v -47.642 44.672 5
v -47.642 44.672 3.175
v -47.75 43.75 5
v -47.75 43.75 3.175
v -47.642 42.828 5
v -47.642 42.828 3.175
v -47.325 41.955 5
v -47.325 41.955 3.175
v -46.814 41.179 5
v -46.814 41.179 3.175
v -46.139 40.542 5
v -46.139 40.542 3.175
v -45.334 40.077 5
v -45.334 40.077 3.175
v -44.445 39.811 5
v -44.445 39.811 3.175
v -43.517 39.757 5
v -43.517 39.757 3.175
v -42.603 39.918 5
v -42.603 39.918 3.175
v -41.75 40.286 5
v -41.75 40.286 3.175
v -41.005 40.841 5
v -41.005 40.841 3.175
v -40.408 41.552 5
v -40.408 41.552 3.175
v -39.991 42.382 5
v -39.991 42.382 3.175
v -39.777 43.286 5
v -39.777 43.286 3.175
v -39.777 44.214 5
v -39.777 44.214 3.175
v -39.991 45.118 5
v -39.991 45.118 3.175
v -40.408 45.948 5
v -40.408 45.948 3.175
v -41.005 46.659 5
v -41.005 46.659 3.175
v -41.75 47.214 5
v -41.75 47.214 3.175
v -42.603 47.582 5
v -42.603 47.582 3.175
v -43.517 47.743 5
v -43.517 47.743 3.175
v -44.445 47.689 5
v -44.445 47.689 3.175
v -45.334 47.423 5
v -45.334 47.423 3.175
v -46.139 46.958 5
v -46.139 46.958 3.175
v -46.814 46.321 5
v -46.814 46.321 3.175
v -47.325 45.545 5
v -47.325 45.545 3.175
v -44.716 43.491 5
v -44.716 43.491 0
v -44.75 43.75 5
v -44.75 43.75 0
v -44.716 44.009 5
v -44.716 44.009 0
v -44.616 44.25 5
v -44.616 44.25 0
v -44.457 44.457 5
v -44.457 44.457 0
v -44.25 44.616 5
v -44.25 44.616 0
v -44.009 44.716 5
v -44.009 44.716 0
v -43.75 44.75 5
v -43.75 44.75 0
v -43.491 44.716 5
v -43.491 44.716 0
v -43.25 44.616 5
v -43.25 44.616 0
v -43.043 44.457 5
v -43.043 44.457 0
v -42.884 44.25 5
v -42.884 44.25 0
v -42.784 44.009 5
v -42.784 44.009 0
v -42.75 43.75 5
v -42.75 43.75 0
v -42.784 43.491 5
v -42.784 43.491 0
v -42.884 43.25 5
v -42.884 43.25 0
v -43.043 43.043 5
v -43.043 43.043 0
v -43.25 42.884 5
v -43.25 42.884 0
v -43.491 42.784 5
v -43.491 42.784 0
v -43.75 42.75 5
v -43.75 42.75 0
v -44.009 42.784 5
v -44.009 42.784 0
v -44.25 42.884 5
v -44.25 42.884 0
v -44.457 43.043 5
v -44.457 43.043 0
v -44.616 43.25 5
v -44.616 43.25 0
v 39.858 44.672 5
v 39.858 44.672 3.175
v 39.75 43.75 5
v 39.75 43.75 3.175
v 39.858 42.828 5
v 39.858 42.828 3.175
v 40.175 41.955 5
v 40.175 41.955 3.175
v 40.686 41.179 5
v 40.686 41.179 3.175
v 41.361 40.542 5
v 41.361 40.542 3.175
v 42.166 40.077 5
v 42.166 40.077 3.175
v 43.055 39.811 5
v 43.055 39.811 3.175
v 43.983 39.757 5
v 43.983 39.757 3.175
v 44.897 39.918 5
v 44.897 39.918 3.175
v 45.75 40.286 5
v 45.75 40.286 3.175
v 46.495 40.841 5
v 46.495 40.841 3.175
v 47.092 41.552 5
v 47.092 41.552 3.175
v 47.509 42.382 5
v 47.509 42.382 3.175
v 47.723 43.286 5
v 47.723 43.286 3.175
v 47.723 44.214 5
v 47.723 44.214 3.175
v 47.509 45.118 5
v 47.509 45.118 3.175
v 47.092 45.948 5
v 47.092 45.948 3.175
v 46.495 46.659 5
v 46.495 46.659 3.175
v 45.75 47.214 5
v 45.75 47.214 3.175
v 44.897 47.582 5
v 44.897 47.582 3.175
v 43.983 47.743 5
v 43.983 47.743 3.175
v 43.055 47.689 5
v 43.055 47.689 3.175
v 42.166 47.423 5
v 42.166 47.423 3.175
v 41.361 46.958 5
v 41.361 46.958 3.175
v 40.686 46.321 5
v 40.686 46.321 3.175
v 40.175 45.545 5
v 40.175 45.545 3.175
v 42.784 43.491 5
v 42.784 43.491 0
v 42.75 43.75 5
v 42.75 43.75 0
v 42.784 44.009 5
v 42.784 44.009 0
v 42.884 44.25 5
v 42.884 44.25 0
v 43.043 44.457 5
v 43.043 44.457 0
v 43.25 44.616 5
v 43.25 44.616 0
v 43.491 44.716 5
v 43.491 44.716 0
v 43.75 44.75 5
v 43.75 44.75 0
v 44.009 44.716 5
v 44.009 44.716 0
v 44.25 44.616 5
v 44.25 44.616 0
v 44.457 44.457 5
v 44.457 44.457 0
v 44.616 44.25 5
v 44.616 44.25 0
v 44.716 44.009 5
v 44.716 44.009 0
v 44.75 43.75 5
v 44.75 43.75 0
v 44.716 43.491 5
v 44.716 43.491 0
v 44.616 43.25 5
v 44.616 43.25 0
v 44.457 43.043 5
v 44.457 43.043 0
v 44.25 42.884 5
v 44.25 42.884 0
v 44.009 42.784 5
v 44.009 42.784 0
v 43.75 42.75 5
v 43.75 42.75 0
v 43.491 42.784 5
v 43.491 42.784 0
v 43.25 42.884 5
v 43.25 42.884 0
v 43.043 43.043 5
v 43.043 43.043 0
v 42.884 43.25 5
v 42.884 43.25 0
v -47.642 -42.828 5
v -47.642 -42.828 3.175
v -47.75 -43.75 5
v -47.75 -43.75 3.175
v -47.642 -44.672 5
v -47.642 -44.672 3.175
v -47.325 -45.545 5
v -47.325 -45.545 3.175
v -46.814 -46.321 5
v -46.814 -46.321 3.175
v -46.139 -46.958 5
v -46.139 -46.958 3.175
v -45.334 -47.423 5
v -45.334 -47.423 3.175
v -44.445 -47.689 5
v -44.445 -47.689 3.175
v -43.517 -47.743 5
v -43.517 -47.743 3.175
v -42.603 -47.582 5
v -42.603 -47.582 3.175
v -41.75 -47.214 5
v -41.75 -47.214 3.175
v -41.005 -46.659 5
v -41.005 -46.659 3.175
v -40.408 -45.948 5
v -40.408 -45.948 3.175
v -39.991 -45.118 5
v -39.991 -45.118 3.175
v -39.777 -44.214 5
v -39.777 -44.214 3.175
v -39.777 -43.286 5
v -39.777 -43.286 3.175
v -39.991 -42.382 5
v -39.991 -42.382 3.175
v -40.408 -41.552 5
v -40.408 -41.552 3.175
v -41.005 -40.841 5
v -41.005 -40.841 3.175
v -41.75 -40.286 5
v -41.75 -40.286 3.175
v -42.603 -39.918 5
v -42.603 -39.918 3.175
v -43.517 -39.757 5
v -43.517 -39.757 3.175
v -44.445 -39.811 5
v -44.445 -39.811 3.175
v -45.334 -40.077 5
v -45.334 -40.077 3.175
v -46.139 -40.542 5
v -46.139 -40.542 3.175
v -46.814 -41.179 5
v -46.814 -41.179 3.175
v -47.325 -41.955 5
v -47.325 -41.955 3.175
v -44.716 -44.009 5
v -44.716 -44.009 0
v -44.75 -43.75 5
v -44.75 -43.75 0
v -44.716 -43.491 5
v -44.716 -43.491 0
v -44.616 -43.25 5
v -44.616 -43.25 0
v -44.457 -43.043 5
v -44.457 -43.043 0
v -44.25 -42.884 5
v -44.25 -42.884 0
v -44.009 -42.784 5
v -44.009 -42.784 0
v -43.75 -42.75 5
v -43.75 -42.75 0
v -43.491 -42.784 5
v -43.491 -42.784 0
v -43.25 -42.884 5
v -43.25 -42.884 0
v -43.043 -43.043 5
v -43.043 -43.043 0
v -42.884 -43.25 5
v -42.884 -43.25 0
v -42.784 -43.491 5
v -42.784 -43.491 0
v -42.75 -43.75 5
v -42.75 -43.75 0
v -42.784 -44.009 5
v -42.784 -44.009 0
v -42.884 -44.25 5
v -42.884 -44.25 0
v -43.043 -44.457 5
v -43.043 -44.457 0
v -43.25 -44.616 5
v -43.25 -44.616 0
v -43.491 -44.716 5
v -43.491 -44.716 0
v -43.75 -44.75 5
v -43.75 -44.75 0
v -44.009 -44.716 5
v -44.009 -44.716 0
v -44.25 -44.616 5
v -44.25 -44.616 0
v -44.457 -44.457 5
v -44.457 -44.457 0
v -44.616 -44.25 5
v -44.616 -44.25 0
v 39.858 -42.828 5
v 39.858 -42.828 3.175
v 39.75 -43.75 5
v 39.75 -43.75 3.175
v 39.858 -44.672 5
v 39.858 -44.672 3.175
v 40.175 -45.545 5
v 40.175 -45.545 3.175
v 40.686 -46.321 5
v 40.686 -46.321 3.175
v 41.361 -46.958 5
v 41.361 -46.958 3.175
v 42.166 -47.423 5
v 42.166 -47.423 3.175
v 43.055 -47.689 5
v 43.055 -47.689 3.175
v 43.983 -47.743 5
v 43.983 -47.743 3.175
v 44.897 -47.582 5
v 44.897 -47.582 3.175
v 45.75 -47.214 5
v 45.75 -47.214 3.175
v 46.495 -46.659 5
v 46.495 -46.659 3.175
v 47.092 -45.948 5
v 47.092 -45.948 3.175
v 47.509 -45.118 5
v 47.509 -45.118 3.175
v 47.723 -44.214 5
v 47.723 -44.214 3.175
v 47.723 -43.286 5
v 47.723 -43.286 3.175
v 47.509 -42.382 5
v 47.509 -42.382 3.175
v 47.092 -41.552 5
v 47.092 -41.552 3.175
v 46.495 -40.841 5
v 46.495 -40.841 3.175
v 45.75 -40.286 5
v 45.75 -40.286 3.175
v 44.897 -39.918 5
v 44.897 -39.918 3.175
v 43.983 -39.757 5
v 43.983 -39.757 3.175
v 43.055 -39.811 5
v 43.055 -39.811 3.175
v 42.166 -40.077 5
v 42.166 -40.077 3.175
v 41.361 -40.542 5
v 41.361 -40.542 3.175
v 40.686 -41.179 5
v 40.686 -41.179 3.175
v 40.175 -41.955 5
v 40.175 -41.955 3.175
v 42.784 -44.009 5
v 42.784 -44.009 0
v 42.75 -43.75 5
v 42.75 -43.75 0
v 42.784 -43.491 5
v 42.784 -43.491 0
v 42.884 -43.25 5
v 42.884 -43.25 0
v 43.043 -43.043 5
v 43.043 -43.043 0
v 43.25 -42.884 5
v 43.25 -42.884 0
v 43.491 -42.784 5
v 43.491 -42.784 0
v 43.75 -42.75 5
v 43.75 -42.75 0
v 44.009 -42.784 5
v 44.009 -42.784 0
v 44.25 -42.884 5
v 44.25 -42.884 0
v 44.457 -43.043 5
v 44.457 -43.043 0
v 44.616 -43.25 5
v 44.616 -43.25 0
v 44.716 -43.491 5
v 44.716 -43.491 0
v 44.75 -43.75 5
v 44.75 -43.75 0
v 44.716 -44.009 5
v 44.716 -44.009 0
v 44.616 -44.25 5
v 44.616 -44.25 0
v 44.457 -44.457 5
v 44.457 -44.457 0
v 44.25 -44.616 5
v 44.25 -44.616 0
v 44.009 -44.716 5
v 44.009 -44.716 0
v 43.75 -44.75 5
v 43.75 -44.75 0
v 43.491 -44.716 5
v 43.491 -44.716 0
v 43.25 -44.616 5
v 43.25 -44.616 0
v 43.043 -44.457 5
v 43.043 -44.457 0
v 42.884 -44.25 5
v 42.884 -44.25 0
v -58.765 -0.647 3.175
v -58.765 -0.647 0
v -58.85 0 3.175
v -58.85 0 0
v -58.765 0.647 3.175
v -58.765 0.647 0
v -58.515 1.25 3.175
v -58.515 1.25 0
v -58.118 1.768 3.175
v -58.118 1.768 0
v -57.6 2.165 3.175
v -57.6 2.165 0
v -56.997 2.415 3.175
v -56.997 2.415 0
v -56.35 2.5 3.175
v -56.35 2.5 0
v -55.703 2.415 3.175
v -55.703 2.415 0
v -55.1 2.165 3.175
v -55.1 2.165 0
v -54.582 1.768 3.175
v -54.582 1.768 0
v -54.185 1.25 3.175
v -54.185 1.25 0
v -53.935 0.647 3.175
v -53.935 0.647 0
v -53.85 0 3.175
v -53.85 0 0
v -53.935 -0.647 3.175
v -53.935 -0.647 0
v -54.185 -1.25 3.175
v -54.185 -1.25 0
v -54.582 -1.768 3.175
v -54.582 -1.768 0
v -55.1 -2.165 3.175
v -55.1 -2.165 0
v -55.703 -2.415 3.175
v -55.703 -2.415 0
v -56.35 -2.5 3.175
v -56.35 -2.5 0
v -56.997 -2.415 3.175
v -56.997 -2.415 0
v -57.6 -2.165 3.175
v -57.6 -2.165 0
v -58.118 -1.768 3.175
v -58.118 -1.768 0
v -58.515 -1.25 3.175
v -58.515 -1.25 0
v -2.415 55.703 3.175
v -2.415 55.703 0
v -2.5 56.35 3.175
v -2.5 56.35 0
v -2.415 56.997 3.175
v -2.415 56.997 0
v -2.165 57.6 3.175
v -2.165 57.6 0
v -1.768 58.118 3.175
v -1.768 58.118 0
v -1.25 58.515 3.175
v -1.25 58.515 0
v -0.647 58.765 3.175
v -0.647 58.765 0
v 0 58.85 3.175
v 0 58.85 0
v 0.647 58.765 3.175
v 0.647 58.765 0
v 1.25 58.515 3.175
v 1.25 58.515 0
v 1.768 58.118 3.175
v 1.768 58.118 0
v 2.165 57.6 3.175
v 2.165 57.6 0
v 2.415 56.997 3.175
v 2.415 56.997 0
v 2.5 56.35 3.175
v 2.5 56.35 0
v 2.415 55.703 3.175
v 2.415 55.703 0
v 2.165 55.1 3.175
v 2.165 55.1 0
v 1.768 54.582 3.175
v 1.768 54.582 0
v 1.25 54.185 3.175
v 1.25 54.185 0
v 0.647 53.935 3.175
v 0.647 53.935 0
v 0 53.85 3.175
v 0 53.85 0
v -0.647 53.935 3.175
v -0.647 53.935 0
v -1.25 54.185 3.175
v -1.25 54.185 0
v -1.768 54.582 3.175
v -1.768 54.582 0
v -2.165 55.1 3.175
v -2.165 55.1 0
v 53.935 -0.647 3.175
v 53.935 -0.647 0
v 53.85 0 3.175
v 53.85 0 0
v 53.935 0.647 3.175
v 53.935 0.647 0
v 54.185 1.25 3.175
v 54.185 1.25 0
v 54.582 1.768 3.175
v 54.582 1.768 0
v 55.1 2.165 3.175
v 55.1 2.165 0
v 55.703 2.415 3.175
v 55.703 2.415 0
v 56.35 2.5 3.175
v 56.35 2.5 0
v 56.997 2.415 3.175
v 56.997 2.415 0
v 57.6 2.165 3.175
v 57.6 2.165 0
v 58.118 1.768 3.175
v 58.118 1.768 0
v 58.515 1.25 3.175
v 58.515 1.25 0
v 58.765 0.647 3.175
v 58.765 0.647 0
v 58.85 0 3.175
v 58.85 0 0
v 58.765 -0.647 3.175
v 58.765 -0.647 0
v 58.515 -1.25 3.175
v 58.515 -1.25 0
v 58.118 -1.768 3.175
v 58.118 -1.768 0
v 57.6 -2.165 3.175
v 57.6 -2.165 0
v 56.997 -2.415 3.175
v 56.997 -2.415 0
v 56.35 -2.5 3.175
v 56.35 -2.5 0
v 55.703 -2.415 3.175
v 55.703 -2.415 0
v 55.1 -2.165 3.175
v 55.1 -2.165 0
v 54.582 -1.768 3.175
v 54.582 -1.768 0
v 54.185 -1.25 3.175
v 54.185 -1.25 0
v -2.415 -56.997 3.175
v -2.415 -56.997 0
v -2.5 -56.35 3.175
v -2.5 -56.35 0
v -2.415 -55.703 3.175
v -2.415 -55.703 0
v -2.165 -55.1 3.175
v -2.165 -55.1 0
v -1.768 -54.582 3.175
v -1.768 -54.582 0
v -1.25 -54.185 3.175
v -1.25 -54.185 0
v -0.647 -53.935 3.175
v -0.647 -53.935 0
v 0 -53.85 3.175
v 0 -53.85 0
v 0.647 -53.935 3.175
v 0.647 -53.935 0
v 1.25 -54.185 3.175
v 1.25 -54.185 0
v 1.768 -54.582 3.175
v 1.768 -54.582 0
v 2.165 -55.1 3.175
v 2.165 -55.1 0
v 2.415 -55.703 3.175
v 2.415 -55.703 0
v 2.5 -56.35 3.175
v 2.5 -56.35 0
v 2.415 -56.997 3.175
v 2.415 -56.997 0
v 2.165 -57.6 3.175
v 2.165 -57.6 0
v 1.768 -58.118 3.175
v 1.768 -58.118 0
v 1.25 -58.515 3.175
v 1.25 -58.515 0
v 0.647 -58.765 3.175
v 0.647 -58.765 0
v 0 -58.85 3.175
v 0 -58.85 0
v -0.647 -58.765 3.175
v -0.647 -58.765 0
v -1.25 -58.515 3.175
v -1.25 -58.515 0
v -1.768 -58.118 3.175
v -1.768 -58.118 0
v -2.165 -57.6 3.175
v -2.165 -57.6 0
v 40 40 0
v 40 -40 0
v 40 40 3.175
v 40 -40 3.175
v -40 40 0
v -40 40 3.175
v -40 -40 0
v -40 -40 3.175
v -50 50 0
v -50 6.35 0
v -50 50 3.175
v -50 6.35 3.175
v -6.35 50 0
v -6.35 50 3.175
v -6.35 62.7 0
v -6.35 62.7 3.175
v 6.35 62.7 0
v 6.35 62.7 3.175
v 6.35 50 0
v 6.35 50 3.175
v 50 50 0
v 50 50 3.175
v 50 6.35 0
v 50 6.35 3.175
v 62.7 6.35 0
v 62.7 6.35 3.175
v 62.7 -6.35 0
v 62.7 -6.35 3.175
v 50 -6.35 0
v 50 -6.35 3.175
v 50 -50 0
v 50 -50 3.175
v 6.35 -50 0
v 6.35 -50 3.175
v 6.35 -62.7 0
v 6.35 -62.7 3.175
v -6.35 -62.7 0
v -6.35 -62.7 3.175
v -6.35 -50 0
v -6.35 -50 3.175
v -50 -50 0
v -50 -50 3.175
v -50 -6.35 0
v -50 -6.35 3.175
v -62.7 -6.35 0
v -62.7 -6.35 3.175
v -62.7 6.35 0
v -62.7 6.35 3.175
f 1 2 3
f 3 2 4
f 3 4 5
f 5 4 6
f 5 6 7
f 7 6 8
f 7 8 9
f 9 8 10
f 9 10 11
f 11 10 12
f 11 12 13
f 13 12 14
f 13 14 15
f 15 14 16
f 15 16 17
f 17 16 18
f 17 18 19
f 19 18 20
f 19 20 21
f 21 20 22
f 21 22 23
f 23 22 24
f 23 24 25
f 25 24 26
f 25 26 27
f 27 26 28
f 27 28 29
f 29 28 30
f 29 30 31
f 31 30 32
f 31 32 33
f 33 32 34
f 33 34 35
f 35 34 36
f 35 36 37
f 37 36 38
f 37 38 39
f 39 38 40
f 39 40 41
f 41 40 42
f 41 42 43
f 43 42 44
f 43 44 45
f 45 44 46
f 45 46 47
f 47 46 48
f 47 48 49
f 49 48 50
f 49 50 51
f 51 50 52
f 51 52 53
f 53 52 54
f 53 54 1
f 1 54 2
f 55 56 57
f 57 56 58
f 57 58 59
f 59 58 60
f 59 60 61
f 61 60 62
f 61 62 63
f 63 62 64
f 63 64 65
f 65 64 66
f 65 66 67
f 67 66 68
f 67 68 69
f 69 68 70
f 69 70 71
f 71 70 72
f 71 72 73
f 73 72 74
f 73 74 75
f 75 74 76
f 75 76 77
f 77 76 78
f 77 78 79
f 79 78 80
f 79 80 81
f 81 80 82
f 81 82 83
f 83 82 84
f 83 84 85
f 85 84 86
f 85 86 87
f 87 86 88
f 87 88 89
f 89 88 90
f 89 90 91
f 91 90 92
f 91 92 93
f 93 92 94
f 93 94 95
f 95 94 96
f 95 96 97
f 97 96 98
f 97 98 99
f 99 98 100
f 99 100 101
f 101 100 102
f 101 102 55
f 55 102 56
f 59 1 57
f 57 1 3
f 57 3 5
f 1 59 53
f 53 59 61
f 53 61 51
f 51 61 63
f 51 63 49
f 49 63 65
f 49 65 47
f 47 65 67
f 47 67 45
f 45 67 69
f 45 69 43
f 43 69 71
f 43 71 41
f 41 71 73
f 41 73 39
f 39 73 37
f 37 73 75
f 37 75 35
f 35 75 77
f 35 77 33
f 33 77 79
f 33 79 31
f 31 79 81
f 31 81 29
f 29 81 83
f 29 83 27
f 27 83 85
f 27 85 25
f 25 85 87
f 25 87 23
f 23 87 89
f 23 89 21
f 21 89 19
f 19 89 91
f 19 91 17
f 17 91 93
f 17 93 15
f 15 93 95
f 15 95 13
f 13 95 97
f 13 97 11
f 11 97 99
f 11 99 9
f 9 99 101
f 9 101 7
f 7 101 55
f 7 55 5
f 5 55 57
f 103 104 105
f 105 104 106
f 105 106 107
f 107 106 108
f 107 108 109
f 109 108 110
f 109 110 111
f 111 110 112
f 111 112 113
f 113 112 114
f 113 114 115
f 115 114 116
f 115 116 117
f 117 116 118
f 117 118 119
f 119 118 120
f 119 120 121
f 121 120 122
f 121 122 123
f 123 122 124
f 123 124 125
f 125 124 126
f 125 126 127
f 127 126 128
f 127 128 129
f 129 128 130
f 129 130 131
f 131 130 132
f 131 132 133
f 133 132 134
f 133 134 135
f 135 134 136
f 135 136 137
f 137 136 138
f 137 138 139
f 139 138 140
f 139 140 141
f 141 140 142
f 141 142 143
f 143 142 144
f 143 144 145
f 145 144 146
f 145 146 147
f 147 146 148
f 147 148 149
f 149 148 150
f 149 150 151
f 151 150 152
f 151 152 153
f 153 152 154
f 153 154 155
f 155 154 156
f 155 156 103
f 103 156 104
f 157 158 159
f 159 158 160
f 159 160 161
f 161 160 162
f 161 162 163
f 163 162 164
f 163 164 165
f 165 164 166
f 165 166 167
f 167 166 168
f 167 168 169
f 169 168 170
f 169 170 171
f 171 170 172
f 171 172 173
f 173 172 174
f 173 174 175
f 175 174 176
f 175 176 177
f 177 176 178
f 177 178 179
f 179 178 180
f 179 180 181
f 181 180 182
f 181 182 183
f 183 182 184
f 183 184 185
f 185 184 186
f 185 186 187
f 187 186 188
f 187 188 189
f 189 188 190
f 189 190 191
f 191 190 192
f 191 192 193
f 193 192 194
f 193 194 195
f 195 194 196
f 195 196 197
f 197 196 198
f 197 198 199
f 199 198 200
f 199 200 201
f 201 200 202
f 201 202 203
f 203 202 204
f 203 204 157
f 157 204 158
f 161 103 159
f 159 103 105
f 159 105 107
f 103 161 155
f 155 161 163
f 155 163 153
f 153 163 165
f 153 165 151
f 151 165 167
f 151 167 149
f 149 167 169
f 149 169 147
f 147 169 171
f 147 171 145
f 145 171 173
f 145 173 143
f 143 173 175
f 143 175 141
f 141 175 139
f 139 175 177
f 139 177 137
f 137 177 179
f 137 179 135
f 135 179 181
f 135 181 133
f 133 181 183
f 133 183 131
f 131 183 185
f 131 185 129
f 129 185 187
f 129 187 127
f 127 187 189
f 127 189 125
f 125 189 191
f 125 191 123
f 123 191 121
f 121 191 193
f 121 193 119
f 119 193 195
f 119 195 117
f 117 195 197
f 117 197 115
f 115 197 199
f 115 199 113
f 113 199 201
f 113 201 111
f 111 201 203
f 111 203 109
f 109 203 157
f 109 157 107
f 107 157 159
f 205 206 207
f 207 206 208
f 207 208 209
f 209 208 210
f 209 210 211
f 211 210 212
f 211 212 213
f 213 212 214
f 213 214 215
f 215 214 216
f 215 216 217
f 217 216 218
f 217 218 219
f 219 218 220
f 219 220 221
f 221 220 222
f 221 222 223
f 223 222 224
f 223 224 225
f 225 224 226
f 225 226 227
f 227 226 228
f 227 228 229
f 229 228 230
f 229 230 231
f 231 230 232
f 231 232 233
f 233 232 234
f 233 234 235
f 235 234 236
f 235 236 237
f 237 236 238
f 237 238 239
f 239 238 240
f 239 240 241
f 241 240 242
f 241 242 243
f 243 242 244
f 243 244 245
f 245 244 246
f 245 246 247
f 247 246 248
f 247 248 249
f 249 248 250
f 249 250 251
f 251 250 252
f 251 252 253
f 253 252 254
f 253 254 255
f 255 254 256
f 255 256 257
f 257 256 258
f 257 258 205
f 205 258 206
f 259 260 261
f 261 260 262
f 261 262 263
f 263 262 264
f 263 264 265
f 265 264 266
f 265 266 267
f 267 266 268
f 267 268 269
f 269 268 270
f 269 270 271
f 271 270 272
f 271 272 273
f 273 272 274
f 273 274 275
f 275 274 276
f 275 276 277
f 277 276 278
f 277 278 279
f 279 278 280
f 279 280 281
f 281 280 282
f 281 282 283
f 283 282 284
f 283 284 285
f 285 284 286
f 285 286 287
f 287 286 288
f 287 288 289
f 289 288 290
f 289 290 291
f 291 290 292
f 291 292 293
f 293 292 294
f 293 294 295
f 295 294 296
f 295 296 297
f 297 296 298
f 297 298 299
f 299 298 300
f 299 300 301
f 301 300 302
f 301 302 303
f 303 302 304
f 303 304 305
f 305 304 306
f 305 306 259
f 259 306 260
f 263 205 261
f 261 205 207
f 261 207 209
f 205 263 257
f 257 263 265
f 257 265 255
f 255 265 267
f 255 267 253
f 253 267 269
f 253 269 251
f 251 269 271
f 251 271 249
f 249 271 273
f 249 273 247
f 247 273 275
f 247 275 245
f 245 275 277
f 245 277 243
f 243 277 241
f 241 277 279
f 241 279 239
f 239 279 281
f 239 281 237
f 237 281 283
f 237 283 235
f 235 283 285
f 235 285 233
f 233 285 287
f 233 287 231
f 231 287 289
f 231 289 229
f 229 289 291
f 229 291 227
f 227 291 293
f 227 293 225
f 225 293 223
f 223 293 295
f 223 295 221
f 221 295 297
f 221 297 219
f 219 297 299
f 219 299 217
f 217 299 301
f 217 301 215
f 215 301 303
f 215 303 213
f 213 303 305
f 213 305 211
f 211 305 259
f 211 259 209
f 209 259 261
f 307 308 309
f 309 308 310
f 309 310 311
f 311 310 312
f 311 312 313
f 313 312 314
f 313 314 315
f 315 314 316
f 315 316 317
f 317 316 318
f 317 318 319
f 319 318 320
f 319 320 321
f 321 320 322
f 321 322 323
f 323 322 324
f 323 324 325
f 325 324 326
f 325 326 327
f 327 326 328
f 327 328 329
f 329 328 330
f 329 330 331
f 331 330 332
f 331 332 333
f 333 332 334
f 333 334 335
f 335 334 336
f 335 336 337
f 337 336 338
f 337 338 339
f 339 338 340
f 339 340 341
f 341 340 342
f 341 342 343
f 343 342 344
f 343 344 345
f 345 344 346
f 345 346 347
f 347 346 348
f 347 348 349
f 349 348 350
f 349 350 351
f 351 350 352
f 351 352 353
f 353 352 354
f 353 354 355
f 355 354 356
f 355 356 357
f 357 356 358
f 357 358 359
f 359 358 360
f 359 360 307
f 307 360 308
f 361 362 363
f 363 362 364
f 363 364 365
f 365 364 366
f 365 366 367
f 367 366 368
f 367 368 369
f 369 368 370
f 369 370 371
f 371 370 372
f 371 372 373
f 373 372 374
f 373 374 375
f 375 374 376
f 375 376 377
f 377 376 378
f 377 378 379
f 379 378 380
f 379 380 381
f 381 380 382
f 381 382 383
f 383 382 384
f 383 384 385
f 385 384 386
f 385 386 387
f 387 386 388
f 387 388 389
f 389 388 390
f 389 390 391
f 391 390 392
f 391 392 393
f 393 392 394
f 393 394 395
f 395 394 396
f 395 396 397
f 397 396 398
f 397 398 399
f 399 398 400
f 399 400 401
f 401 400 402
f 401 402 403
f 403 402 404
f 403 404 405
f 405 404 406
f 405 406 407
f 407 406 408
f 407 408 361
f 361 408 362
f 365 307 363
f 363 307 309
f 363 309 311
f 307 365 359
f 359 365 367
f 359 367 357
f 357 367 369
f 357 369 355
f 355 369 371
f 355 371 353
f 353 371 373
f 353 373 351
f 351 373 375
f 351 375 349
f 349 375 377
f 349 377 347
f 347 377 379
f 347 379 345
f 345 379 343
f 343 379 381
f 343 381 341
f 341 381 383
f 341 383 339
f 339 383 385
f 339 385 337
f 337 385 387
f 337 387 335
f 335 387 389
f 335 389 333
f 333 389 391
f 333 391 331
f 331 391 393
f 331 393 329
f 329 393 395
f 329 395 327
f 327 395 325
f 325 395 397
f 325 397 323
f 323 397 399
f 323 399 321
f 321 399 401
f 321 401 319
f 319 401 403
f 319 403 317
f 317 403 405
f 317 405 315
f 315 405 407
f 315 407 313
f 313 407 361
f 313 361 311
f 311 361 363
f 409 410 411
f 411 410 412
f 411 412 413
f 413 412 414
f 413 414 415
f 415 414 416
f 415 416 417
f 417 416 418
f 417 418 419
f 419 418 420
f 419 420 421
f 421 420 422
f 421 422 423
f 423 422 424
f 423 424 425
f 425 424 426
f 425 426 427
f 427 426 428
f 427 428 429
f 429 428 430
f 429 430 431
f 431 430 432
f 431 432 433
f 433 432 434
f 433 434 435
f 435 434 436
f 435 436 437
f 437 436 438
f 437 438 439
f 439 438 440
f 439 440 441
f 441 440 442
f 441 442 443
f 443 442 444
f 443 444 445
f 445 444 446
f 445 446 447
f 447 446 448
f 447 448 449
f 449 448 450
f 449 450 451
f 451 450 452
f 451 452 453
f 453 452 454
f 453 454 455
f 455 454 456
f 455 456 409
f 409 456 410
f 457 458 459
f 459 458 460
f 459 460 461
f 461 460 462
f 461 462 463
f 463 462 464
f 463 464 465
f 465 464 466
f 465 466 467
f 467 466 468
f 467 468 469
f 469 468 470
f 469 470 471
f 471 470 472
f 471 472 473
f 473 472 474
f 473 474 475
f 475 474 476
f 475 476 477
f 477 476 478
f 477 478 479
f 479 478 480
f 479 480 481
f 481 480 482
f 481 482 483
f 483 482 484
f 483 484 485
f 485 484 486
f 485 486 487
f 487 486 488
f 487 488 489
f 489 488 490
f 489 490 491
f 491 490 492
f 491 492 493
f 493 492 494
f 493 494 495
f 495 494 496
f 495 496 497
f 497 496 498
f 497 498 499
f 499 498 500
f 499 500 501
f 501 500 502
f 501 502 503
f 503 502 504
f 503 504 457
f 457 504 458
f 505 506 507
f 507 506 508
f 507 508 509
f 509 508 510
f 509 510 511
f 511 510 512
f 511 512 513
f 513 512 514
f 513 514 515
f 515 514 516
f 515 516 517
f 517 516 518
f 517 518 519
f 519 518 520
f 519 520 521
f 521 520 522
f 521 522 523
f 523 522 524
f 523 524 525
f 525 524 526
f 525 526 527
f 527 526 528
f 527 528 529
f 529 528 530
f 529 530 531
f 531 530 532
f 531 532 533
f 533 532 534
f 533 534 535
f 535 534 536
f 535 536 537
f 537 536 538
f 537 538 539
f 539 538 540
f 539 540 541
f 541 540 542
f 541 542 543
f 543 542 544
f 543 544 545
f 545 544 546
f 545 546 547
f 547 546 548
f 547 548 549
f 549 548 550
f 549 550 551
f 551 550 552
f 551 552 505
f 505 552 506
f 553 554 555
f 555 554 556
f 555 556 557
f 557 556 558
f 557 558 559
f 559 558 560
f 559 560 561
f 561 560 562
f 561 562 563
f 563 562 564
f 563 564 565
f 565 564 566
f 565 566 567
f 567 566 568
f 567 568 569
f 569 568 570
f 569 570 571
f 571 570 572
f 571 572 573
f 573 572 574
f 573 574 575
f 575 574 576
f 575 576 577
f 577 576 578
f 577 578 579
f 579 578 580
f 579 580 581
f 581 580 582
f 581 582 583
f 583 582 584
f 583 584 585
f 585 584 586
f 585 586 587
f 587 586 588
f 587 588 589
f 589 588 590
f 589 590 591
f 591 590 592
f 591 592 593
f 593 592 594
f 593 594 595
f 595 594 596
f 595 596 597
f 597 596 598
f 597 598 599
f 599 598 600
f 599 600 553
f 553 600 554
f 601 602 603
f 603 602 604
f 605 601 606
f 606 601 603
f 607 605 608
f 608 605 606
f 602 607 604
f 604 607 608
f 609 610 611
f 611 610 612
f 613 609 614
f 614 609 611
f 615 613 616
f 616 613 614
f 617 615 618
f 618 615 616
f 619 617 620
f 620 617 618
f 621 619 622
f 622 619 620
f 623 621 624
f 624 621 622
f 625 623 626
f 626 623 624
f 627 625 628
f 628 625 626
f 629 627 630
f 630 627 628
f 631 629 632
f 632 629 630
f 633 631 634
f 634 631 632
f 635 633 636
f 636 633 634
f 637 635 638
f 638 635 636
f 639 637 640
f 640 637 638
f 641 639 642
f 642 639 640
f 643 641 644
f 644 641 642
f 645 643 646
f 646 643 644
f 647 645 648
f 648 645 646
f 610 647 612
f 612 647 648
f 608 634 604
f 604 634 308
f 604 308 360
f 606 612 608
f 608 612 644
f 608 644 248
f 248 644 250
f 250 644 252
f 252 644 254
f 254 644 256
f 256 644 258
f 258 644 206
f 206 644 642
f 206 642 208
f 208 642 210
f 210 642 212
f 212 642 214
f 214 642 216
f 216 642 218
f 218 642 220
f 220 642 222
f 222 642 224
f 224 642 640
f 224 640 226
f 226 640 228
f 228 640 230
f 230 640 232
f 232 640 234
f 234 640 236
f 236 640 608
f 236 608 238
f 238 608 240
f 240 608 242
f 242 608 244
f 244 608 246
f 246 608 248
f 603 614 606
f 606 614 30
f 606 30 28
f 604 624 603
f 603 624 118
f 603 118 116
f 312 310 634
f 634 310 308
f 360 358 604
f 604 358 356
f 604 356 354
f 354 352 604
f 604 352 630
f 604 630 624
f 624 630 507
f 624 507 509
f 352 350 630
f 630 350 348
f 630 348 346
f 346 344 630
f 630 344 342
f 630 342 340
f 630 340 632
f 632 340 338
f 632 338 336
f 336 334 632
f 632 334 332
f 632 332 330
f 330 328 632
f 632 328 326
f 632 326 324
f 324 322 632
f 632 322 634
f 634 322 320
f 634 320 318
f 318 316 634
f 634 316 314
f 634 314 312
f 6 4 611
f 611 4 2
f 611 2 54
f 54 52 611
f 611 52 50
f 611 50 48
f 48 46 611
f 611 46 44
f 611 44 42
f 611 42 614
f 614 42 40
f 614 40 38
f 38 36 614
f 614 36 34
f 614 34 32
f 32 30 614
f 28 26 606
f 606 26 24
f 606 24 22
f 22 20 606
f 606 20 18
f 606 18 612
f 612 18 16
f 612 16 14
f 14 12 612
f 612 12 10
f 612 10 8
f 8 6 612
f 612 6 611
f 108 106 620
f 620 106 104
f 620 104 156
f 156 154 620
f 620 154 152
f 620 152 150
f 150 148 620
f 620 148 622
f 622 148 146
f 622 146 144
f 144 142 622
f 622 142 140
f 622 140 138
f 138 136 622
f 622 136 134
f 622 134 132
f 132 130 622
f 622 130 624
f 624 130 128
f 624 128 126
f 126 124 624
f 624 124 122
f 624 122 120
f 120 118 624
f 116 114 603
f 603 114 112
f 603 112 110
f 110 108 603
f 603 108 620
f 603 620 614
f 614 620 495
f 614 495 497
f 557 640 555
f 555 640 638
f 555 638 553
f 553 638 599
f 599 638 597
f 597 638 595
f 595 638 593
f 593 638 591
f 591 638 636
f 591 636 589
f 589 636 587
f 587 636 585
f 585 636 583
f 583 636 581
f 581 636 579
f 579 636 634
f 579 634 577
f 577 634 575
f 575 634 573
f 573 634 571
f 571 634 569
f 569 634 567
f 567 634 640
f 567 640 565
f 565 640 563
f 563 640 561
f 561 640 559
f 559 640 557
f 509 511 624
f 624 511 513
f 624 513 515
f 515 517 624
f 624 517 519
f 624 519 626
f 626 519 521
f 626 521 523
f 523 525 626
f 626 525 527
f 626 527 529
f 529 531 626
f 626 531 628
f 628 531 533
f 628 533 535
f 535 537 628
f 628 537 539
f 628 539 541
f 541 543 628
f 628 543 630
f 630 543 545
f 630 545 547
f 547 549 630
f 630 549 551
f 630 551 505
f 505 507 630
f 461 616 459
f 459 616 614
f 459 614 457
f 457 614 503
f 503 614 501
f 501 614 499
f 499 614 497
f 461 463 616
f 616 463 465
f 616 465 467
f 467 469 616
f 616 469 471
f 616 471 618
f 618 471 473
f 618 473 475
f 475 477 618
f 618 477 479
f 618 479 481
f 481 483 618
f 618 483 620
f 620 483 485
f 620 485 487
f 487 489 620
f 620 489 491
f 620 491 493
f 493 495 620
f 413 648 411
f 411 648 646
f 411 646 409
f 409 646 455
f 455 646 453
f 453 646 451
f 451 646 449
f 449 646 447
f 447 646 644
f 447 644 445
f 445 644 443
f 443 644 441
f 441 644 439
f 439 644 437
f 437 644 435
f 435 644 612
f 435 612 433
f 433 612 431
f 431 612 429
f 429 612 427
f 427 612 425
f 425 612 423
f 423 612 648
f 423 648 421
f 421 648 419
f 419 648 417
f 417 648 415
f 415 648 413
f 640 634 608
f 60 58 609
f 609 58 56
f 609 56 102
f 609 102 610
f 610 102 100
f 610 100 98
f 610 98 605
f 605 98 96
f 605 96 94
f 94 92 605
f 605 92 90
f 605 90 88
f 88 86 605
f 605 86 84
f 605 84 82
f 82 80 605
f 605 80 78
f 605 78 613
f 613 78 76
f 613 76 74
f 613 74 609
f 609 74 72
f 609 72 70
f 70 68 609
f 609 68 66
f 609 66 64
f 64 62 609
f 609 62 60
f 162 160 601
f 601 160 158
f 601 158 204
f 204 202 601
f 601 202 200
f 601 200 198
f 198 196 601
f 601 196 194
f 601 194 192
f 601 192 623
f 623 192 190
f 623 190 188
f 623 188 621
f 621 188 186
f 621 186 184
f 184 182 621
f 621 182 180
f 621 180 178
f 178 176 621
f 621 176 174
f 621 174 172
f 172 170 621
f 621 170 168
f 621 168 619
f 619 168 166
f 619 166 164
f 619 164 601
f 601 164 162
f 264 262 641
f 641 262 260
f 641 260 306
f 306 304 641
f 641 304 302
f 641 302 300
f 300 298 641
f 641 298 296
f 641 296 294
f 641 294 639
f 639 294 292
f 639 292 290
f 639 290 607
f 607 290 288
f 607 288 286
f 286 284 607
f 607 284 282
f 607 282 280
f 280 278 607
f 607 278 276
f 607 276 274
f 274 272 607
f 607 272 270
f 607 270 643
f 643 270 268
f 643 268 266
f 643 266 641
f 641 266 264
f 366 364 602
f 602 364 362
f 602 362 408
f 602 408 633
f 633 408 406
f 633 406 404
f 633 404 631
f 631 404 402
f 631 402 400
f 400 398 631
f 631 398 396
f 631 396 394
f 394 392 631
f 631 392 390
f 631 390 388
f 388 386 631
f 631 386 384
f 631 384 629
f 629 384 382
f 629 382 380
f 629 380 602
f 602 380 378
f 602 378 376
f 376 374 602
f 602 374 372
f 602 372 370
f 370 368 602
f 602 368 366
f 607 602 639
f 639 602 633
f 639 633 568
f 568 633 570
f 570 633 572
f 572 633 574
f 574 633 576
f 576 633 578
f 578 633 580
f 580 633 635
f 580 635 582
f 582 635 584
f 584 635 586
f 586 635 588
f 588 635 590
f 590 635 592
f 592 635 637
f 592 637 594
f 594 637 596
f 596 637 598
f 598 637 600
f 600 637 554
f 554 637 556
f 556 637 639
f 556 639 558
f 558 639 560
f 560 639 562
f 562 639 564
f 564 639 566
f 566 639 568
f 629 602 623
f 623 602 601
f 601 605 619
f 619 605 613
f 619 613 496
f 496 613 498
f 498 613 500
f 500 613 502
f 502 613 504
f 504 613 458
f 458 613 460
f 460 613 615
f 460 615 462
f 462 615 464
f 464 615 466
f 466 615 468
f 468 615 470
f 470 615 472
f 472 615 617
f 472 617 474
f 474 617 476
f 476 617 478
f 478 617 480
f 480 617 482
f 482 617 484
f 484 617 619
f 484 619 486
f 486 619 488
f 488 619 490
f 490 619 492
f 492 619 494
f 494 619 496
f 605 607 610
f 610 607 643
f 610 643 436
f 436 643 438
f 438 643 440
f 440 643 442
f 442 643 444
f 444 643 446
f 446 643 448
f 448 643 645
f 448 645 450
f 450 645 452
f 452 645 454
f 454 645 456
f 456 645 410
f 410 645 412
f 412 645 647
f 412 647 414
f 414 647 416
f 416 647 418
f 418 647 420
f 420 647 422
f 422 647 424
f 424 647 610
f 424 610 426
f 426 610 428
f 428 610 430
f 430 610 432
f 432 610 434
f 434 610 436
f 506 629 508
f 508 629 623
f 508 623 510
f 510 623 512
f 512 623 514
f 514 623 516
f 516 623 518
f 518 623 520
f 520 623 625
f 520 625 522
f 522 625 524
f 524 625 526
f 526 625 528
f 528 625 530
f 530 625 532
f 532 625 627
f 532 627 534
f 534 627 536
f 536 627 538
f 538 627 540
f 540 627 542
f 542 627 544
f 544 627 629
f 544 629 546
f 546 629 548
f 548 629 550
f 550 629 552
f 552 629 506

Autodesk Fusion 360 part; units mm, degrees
sketch "Sketch1" plane through (0, 0, 0) normal (0, 0, 1) x (1, 0, 0) in component "Bracket"
  line L0 (-40, 40) -> (40, 40)
  line L1 (40, 40) -> (40, -40)
  line L2 (40, -40) -> (-40, -40)
  line L3 (-40, -40) -> (-40, 40)
  line L4 (-50, 50) -> (50, 50)
  line L5 (50, 50) -> (50, -50)
  line L6 (50, -50) -> (-50, -50)
  line L7 (-50, -50) -> (-50, 50)
  circle A0 centre (-43.75, 43.75) radius 1
  circle A1 centre (-43.75, -43.75) radius 1
  circle A2 centre (43.75, -43.75) radius 1
  circle A3 centre (43.75, 43.75) radius 1
  line L8 (-6.35, 50) -> (-6.35, 62.7)
  line L9 (-6.35, 62.7) -> (6.35, 62.7)
  line L10 (6.35, 62.7) -> (6.35, 50)
  line L11 (-50, 6.35) -> (-62.7, 6.35)
  line L12 (-62.7, 6.35) -> (-62.7, -6.35)
  line L13 (-62.7, -6.35) -> (-50, -6.35)
  line L14 (-6.35, -50) -> (-6.35, -62.7)
  line L15 (-6.35, -62.7) -> (6.35, -62.7)
  line L16 (6.35, -62.7) -> (6.35, -50)
  line L17 (50, 6.35) -> (62.7, 6.35)
  line L18 (62.7, 6.35) -> (62.7, -6.35)
  line L19 (62.7, -6.35) -> (50, -6.35)
  circle A4 centre (56.35, 0) radius 2.5
  circle A5 centre (0, 56.35) radius 2.5
  circle A6 centre (-56.35, 0) radius 2.5
  circle A7 centre (0, -56.35) radius 2.5
  circle A8 centre (43.75, 43.75) radius 4
  circle A9 centre (-43.75, 43.75) radius 4
  circle A10 centre (-43.75, -43.75) radius 4
  circle A11 centre (43.75, -43.75) radius 4
  dimension "d1" = 80
  dimension "d2" = 80
  dimension "d3" = 100
  dimension "d4" = 100
  dimension "d5" = 40
  dimension "d6" = 50
  dimension "d7" = 40
  dimension "d8" = 50
  dimension "d11" = 2
  dimension "d12" = 2
  dimension "d13" = 2
  dimension "d14" = 2
  dimension "d15" = 87.5
  dimension "d16" = 87.5
  dimension "d17" = 43.75
  dimension "d18" = 43.75
  dimension "d19" = 12.7
  dimension "d20" = 12.7
  dimension "d21" = 6.35
  dimension "d22" = 12.7
  dimension "d23" = 12.7
  dimension "d24" = 6.35
  dimension "d25" = 12.7
  dimension "d26" = 12.7
  dimension "d27" = 6.35
  dimension "d28" = 12.7
  dimension "d29" = 12.7
  dimension "d30" = 6.35
  dimension "d31" = 5
  dimension "d32" = 6.35
  dimension "d33" = 6.35
  dimension "d34" = 5
  dimension "d35" = 6.35
  dimension "d36" = 6.35
  dimension "d37" = 5
  dimension "d38" = 6.35
  dimension "d39" = 6.35
  dimension "d40" = 5
  dimension "d41" = 6.35
  dimension "d42" = 6.35
  dimension "d43" = 8
  dimension "d44" = 8
  dimension "d45" = 8
  dimension "d46" = 8
extrude "Extrude1" add sketch "Sketch1" along normal blind 3.175 contours L4 L5 L6 L7 | L4 L8 L9 L10 | L7 L11 L12 L13 | L5 L17 L18 L19 | L6 L14 L15 L16 in component "Bracket"
extrude "Extrude2" add sketch "Sketch1" along normal blind 5 contours A8 | A9 | A10 | A11 in component "Bracket"
component "Bracket" placed x (1, 0, 0) y (0, 1, 0) z (0, 0, 1) at (0, 0, 0)
equation "d5 = d2 / 2"
equation "d6 = d4 / 2"
equation "d7 = d1 / 2"
equation "d8 = d3 / 2"
equation "d17 = d15 / 2"
equation "d18 = d16 / 2"
